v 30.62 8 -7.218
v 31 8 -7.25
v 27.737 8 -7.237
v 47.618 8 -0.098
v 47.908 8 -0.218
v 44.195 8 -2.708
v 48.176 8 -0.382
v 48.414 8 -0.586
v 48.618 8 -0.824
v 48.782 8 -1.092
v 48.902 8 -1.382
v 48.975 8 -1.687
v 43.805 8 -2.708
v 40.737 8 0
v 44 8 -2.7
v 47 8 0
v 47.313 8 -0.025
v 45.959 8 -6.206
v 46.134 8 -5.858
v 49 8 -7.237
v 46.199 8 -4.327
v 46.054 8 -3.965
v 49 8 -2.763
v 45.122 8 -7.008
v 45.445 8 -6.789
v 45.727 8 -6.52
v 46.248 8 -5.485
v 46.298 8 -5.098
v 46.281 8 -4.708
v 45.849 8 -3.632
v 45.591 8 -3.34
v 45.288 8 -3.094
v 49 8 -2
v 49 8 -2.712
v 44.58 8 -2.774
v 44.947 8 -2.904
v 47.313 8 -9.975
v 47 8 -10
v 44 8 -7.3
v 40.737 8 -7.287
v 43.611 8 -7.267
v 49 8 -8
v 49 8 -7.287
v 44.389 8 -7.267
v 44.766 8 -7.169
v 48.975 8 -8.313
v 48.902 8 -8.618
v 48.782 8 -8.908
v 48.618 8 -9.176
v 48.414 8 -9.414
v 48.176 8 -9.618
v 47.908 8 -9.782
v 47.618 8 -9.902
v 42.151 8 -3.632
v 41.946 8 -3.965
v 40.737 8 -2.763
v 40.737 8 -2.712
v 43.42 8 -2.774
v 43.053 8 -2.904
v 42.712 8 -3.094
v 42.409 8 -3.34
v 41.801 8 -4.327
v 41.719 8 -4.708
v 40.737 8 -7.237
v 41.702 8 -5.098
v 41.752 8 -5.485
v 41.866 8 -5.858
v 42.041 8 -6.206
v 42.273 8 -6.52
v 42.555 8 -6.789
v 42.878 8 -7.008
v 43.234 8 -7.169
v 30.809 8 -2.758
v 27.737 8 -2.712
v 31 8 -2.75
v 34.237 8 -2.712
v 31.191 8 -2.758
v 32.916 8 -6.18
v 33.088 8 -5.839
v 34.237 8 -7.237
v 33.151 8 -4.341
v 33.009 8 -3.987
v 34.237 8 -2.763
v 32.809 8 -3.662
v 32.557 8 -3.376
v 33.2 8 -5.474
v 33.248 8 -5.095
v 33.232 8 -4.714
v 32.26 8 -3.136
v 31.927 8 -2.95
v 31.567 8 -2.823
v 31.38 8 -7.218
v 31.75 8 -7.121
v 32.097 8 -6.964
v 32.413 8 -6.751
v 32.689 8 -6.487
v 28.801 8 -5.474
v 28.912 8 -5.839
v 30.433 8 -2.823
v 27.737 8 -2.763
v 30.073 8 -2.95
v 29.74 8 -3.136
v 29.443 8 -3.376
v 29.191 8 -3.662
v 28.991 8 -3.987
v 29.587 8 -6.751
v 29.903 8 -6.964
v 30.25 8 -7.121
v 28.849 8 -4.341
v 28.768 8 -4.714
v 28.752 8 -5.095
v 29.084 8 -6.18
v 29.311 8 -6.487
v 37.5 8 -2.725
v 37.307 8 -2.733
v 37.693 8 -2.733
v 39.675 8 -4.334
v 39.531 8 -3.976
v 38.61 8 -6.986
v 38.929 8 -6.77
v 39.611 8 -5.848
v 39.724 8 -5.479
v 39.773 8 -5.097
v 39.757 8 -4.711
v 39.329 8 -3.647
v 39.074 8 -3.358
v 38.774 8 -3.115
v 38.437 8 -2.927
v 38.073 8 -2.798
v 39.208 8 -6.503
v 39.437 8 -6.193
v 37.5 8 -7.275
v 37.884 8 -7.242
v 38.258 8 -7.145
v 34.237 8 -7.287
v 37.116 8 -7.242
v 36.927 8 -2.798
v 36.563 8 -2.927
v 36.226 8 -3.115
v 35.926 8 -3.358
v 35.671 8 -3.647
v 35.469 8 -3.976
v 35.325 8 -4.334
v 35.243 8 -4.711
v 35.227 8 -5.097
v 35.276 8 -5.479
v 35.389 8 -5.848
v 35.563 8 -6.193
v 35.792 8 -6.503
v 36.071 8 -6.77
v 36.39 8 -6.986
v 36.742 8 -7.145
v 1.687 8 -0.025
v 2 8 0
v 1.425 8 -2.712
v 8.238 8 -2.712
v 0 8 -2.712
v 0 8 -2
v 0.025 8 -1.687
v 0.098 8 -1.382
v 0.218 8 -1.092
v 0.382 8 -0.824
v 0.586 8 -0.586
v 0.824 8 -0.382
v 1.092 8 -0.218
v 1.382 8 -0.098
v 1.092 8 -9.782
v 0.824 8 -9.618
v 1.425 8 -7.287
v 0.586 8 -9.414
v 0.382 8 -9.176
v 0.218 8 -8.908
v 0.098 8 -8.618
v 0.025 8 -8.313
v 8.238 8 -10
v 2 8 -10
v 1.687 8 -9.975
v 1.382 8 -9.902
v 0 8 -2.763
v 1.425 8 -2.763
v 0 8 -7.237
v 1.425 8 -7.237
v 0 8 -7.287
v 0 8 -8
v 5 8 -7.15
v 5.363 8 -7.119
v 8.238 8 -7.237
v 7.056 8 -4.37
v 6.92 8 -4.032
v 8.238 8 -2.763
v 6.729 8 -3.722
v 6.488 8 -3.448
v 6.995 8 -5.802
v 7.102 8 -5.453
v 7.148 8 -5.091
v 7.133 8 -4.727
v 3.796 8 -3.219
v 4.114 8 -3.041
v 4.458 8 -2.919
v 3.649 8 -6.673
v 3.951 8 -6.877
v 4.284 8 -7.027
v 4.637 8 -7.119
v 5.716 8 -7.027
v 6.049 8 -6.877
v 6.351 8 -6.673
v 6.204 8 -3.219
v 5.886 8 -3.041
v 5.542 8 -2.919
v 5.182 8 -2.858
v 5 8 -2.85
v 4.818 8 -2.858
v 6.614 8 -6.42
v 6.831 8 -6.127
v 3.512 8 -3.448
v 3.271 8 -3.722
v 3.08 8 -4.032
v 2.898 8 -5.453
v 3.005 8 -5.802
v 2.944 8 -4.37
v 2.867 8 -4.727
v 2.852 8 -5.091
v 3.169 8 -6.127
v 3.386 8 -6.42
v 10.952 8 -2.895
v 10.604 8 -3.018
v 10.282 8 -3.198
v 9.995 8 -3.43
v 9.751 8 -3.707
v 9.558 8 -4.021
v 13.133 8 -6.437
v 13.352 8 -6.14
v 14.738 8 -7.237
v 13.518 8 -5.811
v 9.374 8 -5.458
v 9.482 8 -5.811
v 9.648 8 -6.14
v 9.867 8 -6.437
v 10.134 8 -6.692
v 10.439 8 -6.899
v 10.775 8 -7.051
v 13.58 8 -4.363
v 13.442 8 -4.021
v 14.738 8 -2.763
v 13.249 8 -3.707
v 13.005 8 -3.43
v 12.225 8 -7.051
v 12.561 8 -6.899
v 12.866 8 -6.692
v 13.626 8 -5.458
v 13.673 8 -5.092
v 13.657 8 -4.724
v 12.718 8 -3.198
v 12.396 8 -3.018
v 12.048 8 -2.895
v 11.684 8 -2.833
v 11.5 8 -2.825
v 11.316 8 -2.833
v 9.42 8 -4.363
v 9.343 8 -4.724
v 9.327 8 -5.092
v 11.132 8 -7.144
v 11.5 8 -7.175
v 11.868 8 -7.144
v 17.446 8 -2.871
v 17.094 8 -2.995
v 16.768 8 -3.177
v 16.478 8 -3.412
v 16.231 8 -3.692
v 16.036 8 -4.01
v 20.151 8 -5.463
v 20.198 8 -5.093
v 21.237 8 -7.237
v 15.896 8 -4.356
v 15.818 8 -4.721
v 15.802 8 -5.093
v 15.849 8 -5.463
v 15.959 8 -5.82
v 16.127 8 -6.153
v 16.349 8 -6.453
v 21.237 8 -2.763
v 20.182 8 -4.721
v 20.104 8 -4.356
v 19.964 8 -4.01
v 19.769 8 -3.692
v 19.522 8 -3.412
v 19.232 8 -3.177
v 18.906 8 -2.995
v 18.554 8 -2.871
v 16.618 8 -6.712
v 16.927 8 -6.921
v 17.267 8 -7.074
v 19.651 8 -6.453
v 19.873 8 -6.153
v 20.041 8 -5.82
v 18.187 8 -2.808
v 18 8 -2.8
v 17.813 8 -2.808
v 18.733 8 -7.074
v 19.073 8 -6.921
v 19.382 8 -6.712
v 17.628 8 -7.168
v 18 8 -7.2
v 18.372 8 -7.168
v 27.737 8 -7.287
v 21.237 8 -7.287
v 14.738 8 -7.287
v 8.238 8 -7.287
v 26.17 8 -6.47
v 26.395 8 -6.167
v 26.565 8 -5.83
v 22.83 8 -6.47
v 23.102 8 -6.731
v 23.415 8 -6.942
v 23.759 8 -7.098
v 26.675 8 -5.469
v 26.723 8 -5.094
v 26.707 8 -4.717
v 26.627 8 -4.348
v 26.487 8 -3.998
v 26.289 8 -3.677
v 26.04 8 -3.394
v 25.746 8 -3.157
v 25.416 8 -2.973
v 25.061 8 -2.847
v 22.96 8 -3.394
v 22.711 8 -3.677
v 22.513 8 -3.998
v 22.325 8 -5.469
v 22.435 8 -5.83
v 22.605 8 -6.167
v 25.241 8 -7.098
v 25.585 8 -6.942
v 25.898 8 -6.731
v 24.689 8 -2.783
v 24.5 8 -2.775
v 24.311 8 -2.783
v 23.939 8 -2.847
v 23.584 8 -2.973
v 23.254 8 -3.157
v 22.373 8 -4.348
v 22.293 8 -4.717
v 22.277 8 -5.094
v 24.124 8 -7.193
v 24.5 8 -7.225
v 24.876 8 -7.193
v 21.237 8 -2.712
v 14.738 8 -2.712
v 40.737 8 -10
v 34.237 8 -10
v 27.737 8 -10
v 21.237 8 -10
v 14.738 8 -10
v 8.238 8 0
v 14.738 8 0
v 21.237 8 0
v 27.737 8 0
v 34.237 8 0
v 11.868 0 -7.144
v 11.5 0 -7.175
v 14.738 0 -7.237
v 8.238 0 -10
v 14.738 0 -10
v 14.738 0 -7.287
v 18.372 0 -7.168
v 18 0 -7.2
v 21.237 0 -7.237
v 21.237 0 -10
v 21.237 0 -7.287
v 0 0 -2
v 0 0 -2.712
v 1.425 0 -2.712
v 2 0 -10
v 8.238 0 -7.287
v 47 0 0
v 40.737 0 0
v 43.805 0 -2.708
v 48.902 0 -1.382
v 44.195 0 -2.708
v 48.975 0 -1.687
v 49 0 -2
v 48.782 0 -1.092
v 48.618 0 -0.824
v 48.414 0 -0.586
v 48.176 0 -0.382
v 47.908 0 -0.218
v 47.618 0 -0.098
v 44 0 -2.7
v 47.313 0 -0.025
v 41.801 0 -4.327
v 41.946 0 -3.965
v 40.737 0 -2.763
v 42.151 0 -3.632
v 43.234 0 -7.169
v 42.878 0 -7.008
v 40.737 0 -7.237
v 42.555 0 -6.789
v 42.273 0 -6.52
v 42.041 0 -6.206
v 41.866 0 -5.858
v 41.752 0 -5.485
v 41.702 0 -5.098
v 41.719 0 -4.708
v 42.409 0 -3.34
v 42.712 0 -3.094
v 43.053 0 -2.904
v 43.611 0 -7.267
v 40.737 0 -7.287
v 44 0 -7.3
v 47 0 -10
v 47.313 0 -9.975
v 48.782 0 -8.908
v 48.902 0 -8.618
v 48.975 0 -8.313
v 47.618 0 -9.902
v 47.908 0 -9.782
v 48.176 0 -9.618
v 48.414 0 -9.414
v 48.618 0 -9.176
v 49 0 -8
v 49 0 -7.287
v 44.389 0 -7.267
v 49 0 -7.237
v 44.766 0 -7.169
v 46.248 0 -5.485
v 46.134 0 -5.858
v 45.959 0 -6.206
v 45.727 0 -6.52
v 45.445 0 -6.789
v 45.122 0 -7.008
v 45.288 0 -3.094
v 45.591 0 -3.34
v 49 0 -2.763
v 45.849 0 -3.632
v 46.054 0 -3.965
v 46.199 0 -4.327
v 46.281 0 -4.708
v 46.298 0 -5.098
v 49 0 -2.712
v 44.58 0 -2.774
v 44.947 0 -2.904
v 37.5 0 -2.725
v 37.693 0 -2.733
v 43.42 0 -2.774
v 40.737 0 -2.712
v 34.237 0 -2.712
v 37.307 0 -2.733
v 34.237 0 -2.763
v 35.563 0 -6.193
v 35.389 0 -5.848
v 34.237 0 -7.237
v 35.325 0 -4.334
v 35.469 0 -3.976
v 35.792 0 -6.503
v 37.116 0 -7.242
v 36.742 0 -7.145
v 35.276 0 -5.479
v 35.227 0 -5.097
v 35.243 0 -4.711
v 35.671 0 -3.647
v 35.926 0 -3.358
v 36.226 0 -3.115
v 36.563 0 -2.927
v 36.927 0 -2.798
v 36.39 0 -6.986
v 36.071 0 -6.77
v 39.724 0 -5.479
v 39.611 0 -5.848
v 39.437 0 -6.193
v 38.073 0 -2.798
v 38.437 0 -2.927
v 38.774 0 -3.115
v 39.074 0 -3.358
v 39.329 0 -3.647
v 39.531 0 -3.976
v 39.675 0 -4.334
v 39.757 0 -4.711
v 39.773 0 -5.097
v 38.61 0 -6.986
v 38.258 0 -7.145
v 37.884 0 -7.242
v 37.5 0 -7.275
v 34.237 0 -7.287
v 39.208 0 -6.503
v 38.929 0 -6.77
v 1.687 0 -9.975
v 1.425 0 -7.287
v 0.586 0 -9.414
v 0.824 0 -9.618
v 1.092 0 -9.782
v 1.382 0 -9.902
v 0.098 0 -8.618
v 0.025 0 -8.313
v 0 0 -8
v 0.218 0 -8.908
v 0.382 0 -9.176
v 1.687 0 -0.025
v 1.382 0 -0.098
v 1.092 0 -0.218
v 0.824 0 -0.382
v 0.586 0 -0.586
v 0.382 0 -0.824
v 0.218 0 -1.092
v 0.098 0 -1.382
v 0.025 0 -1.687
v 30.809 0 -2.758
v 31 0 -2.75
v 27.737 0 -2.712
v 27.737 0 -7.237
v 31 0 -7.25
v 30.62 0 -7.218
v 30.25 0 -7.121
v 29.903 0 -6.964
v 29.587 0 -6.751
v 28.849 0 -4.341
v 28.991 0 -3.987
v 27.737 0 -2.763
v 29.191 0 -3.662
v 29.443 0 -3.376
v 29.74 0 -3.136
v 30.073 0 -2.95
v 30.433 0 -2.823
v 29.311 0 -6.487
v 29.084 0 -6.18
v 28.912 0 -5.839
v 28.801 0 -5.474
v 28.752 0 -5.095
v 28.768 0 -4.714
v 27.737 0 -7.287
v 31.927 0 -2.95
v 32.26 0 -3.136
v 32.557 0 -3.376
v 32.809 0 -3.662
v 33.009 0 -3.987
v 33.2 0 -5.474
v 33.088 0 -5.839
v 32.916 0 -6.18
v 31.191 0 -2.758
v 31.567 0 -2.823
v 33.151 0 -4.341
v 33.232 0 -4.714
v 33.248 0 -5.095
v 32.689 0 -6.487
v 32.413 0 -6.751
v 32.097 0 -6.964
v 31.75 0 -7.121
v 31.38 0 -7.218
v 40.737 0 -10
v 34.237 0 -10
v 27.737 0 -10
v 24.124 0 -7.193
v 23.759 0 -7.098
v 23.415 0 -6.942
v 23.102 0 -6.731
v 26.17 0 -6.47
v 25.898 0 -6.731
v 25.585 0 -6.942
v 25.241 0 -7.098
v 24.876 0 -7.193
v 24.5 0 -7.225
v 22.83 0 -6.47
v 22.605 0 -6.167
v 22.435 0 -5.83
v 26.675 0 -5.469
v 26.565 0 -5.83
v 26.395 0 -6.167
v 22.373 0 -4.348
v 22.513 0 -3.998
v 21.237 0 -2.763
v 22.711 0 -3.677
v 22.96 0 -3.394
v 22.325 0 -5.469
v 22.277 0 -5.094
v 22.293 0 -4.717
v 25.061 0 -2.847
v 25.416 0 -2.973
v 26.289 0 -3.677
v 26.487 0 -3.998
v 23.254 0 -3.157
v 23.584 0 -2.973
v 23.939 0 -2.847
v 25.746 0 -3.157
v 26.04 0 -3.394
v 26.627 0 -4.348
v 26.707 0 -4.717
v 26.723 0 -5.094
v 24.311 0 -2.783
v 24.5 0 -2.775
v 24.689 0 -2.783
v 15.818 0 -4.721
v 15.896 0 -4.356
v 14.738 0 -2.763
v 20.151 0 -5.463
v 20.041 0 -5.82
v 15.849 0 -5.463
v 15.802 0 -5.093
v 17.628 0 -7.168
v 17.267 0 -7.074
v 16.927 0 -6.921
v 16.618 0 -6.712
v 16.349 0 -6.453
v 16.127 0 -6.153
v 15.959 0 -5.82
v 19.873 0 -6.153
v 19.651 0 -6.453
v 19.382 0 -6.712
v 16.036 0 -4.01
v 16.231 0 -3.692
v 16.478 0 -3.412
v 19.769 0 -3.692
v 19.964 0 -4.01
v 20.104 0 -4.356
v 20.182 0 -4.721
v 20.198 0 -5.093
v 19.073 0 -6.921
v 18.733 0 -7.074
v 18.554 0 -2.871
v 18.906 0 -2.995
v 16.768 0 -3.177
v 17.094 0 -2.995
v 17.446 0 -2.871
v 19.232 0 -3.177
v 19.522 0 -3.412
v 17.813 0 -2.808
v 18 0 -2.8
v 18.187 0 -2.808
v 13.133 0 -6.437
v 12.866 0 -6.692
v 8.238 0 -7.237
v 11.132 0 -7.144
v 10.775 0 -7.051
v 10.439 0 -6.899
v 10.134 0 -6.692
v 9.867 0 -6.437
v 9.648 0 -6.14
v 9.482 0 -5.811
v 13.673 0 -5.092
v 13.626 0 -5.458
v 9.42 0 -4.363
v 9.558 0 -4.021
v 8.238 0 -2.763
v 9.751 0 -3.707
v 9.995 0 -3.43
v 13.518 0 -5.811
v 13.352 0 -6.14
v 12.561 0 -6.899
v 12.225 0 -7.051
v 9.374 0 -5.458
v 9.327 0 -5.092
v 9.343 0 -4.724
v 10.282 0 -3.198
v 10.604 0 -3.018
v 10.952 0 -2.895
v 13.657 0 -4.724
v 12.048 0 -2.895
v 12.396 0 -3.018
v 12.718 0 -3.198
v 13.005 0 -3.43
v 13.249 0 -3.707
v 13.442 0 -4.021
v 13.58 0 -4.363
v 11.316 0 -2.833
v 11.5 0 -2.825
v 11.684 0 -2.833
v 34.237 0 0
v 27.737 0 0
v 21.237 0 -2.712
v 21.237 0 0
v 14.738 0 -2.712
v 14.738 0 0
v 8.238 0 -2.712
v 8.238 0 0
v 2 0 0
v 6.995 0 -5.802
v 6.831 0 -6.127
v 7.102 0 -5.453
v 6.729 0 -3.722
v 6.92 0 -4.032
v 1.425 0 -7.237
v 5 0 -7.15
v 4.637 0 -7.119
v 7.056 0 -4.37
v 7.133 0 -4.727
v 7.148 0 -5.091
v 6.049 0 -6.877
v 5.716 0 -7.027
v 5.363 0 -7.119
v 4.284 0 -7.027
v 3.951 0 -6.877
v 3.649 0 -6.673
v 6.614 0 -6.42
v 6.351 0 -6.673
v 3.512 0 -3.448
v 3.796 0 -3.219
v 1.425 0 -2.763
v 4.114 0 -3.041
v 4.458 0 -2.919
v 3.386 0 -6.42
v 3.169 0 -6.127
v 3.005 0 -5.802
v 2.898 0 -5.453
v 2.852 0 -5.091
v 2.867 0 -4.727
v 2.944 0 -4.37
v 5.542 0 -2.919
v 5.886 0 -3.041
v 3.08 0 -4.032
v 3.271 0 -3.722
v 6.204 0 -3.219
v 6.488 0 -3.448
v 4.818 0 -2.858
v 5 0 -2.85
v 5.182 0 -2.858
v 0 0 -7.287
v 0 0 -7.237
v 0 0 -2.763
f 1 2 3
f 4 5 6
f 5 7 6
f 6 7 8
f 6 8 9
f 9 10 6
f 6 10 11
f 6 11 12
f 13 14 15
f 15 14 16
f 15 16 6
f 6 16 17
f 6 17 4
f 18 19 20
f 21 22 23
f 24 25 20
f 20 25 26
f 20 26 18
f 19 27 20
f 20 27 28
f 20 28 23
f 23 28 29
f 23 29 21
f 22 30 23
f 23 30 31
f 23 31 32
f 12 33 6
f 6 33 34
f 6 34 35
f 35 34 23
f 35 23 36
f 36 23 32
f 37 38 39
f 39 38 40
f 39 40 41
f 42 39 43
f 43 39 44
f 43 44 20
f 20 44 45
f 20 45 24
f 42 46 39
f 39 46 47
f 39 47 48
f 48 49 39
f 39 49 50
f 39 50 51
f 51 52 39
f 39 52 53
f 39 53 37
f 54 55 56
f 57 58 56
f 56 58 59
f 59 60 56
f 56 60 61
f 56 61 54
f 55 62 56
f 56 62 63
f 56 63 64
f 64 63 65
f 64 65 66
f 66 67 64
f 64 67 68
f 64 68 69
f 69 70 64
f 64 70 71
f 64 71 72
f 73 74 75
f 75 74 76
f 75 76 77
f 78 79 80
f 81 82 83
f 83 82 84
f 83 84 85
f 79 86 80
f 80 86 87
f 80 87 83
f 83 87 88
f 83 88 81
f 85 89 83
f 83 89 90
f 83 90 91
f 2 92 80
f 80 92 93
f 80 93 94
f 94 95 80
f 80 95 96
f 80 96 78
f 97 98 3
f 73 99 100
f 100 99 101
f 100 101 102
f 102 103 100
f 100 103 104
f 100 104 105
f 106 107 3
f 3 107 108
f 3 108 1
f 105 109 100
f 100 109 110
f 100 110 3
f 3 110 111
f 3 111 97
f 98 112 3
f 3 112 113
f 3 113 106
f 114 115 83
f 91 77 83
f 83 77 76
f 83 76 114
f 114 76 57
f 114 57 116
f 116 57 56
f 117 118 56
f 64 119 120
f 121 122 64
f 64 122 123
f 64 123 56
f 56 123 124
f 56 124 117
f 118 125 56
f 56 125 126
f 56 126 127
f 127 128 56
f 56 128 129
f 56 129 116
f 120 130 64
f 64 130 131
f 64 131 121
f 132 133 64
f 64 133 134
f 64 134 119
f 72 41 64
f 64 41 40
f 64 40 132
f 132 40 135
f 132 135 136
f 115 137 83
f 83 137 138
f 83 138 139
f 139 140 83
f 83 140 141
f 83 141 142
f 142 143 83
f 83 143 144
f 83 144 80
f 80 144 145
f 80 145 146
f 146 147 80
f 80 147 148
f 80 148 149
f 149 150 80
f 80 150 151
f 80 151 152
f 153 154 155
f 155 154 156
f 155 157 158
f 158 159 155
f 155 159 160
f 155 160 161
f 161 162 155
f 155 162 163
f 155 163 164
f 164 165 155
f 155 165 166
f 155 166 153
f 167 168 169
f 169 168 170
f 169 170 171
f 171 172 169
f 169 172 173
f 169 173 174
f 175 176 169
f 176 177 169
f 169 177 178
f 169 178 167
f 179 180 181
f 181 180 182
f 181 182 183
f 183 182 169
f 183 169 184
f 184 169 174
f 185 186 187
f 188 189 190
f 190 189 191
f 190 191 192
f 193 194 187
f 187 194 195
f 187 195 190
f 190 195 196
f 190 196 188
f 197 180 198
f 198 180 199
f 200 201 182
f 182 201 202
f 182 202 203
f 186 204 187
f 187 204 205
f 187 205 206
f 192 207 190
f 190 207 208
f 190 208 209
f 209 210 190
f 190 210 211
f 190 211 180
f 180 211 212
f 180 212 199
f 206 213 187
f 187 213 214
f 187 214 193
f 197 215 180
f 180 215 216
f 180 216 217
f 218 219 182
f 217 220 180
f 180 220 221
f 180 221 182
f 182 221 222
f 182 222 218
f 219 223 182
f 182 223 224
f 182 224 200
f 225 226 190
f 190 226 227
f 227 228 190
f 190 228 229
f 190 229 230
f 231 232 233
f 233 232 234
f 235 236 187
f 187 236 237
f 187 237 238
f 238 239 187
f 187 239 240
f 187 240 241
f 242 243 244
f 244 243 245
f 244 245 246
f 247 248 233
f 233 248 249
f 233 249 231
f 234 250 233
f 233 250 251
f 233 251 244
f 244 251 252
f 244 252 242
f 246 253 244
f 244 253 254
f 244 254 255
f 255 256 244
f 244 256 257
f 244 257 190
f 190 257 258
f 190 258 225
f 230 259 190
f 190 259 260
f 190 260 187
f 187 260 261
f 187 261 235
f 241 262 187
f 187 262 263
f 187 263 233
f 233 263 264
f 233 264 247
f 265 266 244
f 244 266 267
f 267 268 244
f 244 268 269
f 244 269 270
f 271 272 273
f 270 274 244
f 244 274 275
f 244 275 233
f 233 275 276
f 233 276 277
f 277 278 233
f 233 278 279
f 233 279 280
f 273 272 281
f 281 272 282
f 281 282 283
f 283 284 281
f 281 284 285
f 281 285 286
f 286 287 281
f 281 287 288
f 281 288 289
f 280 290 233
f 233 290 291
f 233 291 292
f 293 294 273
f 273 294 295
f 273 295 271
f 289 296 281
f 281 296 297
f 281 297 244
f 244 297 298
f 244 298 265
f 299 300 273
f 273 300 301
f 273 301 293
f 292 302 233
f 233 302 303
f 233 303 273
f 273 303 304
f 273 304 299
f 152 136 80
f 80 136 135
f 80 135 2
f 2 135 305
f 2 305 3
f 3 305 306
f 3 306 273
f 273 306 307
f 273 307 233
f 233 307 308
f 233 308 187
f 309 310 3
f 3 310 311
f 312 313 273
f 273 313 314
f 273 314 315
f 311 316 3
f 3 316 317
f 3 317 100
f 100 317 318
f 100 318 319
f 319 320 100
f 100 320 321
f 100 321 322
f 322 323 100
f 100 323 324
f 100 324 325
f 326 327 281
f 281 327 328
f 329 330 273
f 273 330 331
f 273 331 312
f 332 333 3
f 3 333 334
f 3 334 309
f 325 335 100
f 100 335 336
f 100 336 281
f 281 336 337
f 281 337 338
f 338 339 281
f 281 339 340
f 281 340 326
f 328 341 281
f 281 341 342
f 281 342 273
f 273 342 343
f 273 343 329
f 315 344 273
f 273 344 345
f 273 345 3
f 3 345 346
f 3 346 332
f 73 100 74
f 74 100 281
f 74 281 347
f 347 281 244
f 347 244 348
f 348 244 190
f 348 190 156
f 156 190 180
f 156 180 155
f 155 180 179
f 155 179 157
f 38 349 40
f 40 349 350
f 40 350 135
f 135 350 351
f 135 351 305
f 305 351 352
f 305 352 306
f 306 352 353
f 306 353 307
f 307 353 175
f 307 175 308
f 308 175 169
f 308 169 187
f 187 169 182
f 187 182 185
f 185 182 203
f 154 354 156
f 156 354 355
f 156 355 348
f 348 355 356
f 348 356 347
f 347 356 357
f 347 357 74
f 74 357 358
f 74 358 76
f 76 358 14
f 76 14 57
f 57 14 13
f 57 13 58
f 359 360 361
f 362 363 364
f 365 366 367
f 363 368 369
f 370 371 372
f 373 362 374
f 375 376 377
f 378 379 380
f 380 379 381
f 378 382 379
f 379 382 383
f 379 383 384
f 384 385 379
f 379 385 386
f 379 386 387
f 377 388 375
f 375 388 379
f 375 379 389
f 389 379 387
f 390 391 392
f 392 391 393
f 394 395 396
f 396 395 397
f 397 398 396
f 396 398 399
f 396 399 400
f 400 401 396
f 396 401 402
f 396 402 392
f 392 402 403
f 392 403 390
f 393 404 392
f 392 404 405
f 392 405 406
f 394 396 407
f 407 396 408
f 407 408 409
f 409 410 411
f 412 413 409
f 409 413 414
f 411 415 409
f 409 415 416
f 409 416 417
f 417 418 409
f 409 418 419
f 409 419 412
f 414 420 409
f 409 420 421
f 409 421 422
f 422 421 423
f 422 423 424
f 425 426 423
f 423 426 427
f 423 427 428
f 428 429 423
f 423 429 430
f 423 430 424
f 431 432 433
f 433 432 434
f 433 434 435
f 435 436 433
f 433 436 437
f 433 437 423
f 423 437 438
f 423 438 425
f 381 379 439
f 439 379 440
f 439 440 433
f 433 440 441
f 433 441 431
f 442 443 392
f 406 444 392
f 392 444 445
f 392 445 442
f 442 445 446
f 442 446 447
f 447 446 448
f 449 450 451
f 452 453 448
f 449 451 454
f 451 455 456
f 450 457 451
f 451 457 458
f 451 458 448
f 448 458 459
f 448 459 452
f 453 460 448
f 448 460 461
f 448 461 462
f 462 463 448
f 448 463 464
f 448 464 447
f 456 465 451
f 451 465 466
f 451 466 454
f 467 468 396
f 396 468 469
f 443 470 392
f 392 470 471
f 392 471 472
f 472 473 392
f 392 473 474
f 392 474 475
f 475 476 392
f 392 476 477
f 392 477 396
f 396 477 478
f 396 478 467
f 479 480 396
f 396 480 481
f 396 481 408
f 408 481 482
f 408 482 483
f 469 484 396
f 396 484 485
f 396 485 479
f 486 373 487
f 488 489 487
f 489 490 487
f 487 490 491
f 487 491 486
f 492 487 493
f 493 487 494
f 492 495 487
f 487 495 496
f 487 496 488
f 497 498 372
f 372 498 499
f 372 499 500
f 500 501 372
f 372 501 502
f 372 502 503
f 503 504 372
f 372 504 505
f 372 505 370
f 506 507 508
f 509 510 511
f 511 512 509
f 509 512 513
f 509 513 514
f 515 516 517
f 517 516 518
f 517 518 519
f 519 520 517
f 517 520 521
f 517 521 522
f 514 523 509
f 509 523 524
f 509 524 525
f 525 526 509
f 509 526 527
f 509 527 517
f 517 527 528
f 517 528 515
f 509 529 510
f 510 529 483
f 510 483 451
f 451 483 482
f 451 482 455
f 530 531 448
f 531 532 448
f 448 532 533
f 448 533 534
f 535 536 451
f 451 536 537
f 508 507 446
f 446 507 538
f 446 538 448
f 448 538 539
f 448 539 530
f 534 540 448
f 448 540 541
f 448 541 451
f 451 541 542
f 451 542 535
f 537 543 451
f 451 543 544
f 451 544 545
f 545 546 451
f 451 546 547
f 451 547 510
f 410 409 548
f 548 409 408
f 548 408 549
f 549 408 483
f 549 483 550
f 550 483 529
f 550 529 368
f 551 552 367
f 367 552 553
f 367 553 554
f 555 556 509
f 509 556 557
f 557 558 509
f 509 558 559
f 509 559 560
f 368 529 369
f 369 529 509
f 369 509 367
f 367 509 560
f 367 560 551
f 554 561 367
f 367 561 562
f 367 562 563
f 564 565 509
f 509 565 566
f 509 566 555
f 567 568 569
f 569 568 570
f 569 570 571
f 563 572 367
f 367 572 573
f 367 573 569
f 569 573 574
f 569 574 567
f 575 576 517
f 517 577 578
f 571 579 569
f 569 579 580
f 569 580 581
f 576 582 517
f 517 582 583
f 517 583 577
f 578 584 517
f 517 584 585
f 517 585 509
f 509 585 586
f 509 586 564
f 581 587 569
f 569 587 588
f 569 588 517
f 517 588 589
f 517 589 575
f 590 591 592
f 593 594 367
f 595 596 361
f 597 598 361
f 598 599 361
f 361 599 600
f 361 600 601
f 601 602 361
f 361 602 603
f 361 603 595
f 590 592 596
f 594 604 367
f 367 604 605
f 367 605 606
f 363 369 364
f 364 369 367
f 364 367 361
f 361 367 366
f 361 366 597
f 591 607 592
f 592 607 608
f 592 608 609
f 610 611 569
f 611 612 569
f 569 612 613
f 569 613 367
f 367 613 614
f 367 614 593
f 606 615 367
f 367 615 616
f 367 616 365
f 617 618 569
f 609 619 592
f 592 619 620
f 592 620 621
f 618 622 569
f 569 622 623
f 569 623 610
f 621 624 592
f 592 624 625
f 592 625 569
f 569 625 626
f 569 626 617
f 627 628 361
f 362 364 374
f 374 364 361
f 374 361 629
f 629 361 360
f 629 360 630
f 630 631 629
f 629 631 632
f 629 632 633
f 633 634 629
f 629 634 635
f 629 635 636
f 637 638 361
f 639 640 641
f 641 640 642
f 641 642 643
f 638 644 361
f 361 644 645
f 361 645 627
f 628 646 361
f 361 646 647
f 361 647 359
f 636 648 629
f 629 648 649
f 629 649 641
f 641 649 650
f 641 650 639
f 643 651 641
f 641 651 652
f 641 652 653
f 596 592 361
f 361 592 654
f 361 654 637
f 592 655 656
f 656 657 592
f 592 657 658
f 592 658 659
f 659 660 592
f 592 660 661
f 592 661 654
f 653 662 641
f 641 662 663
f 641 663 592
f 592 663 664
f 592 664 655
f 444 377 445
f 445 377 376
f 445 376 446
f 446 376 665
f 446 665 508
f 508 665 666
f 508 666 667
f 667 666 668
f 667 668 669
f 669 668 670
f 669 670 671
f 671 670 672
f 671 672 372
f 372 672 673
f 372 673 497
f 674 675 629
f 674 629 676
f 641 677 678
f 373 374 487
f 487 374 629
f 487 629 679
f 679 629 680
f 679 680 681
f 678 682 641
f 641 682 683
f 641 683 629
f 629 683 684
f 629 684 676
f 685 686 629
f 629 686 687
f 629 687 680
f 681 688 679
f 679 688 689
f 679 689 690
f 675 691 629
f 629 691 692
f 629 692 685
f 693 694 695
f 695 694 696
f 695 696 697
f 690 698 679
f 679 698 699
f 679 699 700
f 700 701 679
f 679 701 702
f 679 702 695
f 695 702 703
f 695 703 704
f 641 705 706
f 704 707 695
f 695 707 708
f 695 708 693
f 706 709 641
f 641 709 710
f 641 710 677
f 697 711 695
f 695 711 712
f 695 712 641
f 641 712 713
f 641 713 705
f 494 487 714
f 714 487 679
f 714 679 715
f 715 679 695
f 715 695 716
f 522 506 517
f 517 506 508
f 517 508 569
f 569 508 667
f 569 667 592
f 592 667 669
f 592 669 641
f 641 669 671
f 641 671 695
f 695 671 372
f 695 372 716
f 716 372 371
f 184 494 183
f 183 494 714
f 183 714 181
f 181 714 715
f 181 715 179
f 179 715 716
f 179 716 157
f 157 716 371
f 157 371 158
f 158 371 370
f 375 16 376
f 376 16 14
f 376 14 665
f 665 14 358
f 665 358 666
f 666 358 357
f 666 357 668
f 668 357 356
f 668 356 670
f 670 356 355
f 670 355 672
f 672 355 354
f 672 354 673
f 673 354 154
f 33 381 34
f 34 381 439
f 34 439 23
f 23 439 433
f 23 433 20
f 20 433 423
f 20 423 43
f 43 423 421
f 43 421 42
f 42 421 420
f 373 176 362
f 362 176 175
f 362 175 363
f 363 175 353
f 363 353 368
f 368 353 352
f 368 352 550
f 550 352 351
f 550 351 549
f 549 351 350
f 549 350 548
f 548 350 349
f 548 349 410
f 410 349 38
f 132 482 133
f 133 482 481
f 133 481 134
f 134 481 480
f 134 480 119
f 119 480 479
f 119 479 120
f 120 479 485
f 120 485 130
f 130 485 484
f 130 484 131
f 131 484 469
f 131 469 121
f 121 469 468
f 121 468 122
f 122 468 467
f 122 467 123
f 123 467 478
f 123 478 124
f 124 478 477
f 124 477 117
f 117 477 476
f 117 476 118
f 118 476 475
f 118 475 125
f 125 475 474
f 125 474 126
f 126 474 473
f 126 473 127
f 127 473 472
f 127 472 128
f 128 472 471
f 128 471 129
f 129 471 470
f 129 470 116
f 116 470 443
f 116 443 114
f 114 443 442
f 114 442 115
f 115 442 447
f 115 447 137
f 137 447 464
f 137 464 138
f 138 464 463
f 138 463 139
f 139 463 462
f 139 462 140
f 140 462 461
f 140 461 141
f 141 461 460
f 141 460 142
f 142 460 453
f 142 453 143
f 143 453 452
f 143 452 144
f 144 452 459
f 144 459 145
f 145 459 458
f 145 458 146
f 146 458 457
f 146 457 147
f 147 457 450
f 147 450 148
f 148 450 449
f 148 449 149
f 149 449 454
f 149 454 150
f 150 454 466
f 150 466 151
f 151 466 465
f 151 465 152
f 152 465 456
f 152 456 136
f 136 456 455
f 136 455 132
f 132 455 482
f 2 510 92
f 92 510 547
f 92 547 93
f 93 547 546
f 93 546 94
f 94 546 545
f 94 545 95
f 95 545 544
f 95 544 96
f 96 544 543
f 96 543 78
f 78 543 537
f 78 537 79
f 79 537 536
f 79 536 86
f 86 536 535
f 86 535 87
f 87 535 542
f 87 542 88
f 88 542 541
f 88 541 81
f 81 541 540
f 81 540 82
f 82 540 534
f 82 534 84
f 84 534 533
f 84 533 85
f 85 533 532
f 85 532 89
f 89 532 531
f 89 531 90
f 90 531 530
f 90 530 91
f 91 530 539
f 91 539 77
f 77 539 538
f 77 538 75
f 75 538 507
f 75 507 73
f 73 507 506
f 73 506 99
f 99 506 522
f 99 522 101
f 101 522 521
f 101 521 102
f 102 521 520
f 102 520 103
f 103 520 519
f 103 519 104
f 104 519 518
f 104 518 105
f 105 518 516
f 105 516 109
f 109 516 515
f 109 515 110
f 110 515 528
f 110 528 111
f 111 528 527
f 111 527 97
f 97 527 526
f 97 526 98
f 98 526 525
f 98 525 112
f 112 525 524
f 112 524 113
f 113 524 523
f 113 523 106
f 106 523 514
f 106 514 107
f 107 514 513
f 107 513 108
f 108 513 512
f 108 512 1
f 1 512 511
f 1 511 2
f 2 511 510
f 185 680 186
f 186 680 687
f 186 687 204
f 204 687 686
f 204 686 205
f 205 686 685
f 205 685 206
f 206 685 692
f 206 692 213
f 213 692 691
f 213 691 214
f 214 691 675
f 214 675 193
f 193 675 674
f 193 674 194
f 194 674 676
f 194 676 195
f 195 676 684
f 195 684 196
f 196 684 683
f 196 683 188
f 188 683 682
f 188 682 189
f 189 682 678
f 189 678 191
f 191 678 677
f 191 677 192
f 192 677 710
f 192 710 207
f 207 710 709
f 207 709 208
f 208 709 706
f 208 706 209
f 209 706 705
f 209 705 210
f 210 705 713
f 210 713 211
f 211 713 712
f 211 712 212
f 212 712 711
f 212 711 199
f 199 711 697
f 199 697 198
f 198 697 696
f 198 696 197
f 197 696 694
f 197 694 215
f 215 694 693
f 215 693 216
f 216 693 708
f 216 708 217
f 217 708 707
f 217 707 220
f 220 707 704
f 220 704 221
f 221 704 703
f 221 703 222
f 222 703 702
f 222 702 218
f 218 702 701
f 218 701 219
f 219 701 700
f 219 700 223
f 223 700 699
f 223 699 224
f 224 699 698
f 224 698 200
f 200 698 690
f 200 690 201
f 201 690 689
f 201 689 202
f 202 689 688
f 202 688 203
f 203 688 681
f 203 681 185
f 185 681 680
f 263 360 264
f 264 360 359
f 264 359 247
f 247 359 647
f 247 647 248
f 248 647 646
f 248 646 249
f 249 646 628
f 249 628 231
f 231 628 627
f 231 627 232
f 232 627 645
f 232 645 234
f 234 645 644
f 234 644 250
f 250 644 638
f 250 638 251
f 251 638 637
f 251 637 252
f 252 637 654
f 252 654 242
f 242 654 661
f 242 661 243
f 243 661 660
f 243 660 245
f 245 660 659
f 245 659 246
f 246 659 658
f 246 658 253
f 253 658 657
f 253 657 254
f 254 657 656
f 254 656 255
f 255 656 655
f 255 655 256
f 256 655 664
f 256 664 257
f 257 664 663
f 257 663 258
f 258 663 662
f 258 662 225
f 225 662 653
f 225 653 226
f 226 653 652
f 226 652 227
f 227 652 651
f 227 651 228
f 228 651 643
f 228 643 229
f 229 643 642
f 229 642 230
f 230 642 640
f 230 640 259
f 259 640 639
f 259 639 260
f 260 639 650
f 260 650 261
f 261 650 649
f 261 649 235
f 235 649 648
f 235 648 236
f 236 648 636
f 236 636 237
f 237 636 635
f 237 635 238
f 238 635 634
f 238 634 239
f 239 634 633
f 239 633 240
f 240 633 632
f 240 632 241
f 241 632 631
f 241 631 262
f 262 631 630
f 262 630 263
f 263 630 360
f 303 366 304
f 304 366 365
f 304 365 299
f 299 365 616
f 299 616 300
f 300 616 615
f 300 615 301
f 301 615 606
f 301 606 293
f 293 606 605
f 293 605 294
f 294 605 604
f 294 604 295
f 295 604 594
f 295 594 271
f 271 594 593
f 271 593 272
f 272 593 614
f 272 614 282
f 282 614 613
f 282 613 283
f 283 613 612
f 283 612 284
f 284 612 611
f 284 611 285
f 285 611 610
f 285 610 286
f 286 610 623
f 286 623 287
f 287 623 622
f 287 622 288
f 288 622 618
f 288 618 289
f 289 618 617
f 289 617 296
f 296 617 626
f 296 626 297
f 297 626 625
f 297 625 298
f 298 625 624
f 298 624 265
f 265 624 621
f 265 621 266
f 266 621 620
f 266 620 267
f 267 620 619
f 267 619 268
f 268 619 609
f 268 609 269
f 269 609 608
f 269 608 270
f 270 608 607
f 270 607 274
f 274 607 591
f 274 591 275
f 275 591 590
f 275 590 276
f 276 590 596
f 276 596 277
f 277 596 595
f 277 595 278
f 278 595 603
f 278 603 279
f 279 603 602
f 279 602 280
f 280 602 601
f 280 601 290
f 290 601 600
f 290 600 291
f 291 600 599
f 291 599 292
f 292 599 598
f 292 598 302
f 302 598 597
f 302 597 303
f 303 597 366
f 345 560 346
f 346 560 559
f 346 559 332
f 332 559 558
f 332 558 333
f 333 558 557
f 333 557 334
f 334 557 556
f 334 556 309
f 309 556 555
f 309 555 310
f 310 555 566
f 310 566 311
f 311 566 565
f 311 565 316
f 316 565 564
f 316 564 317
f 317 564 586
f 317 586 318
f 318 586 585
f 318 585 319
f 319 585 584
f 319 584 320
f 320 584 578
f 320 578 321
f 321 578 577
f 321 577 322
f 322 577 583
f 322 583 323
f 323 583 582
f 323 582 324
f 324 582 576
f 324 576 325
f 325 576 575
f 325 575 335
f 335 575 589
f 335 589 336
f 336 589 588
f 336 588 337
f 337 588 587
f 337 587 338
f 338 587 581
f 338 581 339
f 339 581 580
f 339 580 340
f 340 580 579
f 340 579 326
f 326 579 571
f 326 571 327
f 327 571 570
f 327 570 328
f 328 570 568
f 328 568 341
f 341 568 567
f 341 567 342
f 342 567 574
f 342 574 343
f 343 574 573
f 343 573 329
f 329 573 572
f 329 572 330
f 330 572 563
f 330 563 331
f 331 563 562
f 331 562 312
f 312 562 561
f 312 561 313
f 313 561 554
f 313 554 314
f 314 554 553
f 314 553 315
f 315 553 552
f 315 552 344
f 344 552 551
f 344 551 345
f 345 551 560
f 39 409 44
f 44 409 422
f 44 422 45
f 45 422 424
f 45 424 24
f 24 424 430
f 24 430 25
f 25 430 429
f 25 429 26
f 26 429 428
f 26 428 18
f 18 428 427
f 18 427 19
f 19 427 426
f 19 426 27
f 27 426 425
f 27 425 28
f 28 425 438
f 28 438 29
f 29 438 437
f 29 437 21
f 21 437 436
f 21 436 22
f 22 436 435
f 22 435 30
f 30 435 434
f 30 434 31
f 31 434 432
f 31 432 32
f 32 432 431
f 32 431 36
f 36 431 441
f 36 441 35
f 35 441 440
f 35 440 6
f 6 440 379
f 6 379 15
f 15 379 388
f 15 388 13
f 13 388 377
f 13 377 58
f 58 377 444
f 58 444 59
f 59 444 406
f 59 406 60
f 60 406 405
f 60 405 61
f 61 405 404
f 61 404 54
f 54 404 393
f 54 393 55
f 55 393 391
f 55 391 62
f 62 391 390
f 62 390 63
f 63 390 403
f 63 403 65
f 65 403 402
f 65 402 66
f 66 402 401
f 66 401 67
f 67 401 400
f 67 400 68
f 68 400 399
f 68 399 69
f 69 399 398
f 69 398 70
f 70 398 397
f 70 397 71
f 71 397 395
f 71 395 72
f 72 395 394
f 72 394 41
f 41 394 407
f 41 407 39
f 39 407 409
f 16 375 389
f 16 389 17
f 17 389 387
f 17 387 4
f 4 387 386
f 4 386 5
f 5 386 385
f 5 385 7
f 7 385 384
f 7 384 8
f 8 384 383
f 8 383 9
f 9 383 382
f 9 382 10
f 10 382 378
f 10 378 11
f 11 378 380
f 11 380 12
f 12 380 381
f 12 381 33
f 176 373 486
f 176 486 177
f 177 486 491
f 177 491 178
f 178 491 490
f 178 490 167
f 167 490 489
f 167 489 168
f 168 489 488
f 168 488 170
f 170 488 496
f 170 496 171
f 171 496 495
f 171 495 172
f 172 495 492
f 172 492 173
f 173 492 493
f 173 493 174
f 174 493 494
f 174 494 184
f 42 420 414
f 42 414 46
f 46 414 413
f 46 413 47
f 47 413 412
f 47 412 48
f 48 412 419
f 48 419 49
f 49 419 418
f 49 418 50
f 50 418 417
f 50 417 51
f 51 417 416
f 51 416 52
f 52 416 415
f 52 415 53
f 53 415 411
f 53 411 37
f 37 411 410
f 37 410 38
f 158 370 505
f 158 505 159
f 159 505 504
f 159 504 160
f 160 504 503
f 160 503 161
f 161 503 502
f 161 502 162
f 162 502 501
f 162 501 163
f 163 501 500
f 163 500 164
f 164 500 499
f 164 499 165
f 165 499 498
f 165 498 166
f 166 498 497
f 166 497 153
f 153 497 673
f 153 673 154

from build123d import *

# Parameters (mm, degrees)
SKETCH1_W           = 49
SKETCH1_H           = 10
SKETCH1_R           = 2.15
SKETCH1_R_2         = 2.175
SKETCH1_R_3         = 2.2
SKETCH1_R_4         = 2.225
SKETCH1_R_5         = 2.3
SKETCH1_R_6         = 2.25
SKETCH1_R_7         = 2.275
BOSS_EXTRUDE1_DEPTH = 8
FILLET1_R           = 2


with BuildPart() as part:
    # Sketch1 → Boss-Extrude1 (new body)
    with BuildSketch(Plane(origin=(0, 0, 0), x_dir=(1, 0, 0), z_dir=(0, 1, 0))):
        with Locations((24.5, 5)):
            Rectangle(SKETCH1_W, SKETCH1_H)
        with Locations(Location((5, 5, 0), (0, 0, 270))):
            Circle(SKETCH1_R, mode=Mode.SUBTRACT)
        with Locations(Location((11.5, 5, 0), (0, 0, 270))):
            Circle(SKETCH1_R_2, mode=Mode.SUBTRACT)
        with Locations(Location((18, 5, 0), (0, 0, 270))):
            Circle(SKETCH1_R_3, mode=Mode.SUBTRACT)
        with Locations(Location((24.5, 5, 0), (0, 0, 270))):
            Circle(SKETCH1_R_4, mode=Mode.SUBTRACT)
        with Locations(Location((44, 5, 0), (0, 0, 270))):
            Circle(SKETCH1_R_5, mode=Mode.SUBTRACT)
        with Locations(Location((31, 5, 0), (0, 0, 270))):
            Circle(SKETCH1_R_6, mode=Mode.SUBTRACT)
        with Locations(Location((37.5, 5, 0), (0, 0, 270))):
            Circle(SKETCH1_R_7, mode=Mode.SUBTRACT)
    extrude(amount=BOSS_EXTRUDE1_DEPTH)

    # Fillet1
    fillet1_edges = [part.edges().sort_by_distance(p)[0] for p in [
        (0, 4, -10),
        (49, 4, -10),
        (49, 4, 0),
        (0, 4, 0),
    ]]
    fillet(fillet1_edges, radius=FILLET1_R)


solid = part.part
